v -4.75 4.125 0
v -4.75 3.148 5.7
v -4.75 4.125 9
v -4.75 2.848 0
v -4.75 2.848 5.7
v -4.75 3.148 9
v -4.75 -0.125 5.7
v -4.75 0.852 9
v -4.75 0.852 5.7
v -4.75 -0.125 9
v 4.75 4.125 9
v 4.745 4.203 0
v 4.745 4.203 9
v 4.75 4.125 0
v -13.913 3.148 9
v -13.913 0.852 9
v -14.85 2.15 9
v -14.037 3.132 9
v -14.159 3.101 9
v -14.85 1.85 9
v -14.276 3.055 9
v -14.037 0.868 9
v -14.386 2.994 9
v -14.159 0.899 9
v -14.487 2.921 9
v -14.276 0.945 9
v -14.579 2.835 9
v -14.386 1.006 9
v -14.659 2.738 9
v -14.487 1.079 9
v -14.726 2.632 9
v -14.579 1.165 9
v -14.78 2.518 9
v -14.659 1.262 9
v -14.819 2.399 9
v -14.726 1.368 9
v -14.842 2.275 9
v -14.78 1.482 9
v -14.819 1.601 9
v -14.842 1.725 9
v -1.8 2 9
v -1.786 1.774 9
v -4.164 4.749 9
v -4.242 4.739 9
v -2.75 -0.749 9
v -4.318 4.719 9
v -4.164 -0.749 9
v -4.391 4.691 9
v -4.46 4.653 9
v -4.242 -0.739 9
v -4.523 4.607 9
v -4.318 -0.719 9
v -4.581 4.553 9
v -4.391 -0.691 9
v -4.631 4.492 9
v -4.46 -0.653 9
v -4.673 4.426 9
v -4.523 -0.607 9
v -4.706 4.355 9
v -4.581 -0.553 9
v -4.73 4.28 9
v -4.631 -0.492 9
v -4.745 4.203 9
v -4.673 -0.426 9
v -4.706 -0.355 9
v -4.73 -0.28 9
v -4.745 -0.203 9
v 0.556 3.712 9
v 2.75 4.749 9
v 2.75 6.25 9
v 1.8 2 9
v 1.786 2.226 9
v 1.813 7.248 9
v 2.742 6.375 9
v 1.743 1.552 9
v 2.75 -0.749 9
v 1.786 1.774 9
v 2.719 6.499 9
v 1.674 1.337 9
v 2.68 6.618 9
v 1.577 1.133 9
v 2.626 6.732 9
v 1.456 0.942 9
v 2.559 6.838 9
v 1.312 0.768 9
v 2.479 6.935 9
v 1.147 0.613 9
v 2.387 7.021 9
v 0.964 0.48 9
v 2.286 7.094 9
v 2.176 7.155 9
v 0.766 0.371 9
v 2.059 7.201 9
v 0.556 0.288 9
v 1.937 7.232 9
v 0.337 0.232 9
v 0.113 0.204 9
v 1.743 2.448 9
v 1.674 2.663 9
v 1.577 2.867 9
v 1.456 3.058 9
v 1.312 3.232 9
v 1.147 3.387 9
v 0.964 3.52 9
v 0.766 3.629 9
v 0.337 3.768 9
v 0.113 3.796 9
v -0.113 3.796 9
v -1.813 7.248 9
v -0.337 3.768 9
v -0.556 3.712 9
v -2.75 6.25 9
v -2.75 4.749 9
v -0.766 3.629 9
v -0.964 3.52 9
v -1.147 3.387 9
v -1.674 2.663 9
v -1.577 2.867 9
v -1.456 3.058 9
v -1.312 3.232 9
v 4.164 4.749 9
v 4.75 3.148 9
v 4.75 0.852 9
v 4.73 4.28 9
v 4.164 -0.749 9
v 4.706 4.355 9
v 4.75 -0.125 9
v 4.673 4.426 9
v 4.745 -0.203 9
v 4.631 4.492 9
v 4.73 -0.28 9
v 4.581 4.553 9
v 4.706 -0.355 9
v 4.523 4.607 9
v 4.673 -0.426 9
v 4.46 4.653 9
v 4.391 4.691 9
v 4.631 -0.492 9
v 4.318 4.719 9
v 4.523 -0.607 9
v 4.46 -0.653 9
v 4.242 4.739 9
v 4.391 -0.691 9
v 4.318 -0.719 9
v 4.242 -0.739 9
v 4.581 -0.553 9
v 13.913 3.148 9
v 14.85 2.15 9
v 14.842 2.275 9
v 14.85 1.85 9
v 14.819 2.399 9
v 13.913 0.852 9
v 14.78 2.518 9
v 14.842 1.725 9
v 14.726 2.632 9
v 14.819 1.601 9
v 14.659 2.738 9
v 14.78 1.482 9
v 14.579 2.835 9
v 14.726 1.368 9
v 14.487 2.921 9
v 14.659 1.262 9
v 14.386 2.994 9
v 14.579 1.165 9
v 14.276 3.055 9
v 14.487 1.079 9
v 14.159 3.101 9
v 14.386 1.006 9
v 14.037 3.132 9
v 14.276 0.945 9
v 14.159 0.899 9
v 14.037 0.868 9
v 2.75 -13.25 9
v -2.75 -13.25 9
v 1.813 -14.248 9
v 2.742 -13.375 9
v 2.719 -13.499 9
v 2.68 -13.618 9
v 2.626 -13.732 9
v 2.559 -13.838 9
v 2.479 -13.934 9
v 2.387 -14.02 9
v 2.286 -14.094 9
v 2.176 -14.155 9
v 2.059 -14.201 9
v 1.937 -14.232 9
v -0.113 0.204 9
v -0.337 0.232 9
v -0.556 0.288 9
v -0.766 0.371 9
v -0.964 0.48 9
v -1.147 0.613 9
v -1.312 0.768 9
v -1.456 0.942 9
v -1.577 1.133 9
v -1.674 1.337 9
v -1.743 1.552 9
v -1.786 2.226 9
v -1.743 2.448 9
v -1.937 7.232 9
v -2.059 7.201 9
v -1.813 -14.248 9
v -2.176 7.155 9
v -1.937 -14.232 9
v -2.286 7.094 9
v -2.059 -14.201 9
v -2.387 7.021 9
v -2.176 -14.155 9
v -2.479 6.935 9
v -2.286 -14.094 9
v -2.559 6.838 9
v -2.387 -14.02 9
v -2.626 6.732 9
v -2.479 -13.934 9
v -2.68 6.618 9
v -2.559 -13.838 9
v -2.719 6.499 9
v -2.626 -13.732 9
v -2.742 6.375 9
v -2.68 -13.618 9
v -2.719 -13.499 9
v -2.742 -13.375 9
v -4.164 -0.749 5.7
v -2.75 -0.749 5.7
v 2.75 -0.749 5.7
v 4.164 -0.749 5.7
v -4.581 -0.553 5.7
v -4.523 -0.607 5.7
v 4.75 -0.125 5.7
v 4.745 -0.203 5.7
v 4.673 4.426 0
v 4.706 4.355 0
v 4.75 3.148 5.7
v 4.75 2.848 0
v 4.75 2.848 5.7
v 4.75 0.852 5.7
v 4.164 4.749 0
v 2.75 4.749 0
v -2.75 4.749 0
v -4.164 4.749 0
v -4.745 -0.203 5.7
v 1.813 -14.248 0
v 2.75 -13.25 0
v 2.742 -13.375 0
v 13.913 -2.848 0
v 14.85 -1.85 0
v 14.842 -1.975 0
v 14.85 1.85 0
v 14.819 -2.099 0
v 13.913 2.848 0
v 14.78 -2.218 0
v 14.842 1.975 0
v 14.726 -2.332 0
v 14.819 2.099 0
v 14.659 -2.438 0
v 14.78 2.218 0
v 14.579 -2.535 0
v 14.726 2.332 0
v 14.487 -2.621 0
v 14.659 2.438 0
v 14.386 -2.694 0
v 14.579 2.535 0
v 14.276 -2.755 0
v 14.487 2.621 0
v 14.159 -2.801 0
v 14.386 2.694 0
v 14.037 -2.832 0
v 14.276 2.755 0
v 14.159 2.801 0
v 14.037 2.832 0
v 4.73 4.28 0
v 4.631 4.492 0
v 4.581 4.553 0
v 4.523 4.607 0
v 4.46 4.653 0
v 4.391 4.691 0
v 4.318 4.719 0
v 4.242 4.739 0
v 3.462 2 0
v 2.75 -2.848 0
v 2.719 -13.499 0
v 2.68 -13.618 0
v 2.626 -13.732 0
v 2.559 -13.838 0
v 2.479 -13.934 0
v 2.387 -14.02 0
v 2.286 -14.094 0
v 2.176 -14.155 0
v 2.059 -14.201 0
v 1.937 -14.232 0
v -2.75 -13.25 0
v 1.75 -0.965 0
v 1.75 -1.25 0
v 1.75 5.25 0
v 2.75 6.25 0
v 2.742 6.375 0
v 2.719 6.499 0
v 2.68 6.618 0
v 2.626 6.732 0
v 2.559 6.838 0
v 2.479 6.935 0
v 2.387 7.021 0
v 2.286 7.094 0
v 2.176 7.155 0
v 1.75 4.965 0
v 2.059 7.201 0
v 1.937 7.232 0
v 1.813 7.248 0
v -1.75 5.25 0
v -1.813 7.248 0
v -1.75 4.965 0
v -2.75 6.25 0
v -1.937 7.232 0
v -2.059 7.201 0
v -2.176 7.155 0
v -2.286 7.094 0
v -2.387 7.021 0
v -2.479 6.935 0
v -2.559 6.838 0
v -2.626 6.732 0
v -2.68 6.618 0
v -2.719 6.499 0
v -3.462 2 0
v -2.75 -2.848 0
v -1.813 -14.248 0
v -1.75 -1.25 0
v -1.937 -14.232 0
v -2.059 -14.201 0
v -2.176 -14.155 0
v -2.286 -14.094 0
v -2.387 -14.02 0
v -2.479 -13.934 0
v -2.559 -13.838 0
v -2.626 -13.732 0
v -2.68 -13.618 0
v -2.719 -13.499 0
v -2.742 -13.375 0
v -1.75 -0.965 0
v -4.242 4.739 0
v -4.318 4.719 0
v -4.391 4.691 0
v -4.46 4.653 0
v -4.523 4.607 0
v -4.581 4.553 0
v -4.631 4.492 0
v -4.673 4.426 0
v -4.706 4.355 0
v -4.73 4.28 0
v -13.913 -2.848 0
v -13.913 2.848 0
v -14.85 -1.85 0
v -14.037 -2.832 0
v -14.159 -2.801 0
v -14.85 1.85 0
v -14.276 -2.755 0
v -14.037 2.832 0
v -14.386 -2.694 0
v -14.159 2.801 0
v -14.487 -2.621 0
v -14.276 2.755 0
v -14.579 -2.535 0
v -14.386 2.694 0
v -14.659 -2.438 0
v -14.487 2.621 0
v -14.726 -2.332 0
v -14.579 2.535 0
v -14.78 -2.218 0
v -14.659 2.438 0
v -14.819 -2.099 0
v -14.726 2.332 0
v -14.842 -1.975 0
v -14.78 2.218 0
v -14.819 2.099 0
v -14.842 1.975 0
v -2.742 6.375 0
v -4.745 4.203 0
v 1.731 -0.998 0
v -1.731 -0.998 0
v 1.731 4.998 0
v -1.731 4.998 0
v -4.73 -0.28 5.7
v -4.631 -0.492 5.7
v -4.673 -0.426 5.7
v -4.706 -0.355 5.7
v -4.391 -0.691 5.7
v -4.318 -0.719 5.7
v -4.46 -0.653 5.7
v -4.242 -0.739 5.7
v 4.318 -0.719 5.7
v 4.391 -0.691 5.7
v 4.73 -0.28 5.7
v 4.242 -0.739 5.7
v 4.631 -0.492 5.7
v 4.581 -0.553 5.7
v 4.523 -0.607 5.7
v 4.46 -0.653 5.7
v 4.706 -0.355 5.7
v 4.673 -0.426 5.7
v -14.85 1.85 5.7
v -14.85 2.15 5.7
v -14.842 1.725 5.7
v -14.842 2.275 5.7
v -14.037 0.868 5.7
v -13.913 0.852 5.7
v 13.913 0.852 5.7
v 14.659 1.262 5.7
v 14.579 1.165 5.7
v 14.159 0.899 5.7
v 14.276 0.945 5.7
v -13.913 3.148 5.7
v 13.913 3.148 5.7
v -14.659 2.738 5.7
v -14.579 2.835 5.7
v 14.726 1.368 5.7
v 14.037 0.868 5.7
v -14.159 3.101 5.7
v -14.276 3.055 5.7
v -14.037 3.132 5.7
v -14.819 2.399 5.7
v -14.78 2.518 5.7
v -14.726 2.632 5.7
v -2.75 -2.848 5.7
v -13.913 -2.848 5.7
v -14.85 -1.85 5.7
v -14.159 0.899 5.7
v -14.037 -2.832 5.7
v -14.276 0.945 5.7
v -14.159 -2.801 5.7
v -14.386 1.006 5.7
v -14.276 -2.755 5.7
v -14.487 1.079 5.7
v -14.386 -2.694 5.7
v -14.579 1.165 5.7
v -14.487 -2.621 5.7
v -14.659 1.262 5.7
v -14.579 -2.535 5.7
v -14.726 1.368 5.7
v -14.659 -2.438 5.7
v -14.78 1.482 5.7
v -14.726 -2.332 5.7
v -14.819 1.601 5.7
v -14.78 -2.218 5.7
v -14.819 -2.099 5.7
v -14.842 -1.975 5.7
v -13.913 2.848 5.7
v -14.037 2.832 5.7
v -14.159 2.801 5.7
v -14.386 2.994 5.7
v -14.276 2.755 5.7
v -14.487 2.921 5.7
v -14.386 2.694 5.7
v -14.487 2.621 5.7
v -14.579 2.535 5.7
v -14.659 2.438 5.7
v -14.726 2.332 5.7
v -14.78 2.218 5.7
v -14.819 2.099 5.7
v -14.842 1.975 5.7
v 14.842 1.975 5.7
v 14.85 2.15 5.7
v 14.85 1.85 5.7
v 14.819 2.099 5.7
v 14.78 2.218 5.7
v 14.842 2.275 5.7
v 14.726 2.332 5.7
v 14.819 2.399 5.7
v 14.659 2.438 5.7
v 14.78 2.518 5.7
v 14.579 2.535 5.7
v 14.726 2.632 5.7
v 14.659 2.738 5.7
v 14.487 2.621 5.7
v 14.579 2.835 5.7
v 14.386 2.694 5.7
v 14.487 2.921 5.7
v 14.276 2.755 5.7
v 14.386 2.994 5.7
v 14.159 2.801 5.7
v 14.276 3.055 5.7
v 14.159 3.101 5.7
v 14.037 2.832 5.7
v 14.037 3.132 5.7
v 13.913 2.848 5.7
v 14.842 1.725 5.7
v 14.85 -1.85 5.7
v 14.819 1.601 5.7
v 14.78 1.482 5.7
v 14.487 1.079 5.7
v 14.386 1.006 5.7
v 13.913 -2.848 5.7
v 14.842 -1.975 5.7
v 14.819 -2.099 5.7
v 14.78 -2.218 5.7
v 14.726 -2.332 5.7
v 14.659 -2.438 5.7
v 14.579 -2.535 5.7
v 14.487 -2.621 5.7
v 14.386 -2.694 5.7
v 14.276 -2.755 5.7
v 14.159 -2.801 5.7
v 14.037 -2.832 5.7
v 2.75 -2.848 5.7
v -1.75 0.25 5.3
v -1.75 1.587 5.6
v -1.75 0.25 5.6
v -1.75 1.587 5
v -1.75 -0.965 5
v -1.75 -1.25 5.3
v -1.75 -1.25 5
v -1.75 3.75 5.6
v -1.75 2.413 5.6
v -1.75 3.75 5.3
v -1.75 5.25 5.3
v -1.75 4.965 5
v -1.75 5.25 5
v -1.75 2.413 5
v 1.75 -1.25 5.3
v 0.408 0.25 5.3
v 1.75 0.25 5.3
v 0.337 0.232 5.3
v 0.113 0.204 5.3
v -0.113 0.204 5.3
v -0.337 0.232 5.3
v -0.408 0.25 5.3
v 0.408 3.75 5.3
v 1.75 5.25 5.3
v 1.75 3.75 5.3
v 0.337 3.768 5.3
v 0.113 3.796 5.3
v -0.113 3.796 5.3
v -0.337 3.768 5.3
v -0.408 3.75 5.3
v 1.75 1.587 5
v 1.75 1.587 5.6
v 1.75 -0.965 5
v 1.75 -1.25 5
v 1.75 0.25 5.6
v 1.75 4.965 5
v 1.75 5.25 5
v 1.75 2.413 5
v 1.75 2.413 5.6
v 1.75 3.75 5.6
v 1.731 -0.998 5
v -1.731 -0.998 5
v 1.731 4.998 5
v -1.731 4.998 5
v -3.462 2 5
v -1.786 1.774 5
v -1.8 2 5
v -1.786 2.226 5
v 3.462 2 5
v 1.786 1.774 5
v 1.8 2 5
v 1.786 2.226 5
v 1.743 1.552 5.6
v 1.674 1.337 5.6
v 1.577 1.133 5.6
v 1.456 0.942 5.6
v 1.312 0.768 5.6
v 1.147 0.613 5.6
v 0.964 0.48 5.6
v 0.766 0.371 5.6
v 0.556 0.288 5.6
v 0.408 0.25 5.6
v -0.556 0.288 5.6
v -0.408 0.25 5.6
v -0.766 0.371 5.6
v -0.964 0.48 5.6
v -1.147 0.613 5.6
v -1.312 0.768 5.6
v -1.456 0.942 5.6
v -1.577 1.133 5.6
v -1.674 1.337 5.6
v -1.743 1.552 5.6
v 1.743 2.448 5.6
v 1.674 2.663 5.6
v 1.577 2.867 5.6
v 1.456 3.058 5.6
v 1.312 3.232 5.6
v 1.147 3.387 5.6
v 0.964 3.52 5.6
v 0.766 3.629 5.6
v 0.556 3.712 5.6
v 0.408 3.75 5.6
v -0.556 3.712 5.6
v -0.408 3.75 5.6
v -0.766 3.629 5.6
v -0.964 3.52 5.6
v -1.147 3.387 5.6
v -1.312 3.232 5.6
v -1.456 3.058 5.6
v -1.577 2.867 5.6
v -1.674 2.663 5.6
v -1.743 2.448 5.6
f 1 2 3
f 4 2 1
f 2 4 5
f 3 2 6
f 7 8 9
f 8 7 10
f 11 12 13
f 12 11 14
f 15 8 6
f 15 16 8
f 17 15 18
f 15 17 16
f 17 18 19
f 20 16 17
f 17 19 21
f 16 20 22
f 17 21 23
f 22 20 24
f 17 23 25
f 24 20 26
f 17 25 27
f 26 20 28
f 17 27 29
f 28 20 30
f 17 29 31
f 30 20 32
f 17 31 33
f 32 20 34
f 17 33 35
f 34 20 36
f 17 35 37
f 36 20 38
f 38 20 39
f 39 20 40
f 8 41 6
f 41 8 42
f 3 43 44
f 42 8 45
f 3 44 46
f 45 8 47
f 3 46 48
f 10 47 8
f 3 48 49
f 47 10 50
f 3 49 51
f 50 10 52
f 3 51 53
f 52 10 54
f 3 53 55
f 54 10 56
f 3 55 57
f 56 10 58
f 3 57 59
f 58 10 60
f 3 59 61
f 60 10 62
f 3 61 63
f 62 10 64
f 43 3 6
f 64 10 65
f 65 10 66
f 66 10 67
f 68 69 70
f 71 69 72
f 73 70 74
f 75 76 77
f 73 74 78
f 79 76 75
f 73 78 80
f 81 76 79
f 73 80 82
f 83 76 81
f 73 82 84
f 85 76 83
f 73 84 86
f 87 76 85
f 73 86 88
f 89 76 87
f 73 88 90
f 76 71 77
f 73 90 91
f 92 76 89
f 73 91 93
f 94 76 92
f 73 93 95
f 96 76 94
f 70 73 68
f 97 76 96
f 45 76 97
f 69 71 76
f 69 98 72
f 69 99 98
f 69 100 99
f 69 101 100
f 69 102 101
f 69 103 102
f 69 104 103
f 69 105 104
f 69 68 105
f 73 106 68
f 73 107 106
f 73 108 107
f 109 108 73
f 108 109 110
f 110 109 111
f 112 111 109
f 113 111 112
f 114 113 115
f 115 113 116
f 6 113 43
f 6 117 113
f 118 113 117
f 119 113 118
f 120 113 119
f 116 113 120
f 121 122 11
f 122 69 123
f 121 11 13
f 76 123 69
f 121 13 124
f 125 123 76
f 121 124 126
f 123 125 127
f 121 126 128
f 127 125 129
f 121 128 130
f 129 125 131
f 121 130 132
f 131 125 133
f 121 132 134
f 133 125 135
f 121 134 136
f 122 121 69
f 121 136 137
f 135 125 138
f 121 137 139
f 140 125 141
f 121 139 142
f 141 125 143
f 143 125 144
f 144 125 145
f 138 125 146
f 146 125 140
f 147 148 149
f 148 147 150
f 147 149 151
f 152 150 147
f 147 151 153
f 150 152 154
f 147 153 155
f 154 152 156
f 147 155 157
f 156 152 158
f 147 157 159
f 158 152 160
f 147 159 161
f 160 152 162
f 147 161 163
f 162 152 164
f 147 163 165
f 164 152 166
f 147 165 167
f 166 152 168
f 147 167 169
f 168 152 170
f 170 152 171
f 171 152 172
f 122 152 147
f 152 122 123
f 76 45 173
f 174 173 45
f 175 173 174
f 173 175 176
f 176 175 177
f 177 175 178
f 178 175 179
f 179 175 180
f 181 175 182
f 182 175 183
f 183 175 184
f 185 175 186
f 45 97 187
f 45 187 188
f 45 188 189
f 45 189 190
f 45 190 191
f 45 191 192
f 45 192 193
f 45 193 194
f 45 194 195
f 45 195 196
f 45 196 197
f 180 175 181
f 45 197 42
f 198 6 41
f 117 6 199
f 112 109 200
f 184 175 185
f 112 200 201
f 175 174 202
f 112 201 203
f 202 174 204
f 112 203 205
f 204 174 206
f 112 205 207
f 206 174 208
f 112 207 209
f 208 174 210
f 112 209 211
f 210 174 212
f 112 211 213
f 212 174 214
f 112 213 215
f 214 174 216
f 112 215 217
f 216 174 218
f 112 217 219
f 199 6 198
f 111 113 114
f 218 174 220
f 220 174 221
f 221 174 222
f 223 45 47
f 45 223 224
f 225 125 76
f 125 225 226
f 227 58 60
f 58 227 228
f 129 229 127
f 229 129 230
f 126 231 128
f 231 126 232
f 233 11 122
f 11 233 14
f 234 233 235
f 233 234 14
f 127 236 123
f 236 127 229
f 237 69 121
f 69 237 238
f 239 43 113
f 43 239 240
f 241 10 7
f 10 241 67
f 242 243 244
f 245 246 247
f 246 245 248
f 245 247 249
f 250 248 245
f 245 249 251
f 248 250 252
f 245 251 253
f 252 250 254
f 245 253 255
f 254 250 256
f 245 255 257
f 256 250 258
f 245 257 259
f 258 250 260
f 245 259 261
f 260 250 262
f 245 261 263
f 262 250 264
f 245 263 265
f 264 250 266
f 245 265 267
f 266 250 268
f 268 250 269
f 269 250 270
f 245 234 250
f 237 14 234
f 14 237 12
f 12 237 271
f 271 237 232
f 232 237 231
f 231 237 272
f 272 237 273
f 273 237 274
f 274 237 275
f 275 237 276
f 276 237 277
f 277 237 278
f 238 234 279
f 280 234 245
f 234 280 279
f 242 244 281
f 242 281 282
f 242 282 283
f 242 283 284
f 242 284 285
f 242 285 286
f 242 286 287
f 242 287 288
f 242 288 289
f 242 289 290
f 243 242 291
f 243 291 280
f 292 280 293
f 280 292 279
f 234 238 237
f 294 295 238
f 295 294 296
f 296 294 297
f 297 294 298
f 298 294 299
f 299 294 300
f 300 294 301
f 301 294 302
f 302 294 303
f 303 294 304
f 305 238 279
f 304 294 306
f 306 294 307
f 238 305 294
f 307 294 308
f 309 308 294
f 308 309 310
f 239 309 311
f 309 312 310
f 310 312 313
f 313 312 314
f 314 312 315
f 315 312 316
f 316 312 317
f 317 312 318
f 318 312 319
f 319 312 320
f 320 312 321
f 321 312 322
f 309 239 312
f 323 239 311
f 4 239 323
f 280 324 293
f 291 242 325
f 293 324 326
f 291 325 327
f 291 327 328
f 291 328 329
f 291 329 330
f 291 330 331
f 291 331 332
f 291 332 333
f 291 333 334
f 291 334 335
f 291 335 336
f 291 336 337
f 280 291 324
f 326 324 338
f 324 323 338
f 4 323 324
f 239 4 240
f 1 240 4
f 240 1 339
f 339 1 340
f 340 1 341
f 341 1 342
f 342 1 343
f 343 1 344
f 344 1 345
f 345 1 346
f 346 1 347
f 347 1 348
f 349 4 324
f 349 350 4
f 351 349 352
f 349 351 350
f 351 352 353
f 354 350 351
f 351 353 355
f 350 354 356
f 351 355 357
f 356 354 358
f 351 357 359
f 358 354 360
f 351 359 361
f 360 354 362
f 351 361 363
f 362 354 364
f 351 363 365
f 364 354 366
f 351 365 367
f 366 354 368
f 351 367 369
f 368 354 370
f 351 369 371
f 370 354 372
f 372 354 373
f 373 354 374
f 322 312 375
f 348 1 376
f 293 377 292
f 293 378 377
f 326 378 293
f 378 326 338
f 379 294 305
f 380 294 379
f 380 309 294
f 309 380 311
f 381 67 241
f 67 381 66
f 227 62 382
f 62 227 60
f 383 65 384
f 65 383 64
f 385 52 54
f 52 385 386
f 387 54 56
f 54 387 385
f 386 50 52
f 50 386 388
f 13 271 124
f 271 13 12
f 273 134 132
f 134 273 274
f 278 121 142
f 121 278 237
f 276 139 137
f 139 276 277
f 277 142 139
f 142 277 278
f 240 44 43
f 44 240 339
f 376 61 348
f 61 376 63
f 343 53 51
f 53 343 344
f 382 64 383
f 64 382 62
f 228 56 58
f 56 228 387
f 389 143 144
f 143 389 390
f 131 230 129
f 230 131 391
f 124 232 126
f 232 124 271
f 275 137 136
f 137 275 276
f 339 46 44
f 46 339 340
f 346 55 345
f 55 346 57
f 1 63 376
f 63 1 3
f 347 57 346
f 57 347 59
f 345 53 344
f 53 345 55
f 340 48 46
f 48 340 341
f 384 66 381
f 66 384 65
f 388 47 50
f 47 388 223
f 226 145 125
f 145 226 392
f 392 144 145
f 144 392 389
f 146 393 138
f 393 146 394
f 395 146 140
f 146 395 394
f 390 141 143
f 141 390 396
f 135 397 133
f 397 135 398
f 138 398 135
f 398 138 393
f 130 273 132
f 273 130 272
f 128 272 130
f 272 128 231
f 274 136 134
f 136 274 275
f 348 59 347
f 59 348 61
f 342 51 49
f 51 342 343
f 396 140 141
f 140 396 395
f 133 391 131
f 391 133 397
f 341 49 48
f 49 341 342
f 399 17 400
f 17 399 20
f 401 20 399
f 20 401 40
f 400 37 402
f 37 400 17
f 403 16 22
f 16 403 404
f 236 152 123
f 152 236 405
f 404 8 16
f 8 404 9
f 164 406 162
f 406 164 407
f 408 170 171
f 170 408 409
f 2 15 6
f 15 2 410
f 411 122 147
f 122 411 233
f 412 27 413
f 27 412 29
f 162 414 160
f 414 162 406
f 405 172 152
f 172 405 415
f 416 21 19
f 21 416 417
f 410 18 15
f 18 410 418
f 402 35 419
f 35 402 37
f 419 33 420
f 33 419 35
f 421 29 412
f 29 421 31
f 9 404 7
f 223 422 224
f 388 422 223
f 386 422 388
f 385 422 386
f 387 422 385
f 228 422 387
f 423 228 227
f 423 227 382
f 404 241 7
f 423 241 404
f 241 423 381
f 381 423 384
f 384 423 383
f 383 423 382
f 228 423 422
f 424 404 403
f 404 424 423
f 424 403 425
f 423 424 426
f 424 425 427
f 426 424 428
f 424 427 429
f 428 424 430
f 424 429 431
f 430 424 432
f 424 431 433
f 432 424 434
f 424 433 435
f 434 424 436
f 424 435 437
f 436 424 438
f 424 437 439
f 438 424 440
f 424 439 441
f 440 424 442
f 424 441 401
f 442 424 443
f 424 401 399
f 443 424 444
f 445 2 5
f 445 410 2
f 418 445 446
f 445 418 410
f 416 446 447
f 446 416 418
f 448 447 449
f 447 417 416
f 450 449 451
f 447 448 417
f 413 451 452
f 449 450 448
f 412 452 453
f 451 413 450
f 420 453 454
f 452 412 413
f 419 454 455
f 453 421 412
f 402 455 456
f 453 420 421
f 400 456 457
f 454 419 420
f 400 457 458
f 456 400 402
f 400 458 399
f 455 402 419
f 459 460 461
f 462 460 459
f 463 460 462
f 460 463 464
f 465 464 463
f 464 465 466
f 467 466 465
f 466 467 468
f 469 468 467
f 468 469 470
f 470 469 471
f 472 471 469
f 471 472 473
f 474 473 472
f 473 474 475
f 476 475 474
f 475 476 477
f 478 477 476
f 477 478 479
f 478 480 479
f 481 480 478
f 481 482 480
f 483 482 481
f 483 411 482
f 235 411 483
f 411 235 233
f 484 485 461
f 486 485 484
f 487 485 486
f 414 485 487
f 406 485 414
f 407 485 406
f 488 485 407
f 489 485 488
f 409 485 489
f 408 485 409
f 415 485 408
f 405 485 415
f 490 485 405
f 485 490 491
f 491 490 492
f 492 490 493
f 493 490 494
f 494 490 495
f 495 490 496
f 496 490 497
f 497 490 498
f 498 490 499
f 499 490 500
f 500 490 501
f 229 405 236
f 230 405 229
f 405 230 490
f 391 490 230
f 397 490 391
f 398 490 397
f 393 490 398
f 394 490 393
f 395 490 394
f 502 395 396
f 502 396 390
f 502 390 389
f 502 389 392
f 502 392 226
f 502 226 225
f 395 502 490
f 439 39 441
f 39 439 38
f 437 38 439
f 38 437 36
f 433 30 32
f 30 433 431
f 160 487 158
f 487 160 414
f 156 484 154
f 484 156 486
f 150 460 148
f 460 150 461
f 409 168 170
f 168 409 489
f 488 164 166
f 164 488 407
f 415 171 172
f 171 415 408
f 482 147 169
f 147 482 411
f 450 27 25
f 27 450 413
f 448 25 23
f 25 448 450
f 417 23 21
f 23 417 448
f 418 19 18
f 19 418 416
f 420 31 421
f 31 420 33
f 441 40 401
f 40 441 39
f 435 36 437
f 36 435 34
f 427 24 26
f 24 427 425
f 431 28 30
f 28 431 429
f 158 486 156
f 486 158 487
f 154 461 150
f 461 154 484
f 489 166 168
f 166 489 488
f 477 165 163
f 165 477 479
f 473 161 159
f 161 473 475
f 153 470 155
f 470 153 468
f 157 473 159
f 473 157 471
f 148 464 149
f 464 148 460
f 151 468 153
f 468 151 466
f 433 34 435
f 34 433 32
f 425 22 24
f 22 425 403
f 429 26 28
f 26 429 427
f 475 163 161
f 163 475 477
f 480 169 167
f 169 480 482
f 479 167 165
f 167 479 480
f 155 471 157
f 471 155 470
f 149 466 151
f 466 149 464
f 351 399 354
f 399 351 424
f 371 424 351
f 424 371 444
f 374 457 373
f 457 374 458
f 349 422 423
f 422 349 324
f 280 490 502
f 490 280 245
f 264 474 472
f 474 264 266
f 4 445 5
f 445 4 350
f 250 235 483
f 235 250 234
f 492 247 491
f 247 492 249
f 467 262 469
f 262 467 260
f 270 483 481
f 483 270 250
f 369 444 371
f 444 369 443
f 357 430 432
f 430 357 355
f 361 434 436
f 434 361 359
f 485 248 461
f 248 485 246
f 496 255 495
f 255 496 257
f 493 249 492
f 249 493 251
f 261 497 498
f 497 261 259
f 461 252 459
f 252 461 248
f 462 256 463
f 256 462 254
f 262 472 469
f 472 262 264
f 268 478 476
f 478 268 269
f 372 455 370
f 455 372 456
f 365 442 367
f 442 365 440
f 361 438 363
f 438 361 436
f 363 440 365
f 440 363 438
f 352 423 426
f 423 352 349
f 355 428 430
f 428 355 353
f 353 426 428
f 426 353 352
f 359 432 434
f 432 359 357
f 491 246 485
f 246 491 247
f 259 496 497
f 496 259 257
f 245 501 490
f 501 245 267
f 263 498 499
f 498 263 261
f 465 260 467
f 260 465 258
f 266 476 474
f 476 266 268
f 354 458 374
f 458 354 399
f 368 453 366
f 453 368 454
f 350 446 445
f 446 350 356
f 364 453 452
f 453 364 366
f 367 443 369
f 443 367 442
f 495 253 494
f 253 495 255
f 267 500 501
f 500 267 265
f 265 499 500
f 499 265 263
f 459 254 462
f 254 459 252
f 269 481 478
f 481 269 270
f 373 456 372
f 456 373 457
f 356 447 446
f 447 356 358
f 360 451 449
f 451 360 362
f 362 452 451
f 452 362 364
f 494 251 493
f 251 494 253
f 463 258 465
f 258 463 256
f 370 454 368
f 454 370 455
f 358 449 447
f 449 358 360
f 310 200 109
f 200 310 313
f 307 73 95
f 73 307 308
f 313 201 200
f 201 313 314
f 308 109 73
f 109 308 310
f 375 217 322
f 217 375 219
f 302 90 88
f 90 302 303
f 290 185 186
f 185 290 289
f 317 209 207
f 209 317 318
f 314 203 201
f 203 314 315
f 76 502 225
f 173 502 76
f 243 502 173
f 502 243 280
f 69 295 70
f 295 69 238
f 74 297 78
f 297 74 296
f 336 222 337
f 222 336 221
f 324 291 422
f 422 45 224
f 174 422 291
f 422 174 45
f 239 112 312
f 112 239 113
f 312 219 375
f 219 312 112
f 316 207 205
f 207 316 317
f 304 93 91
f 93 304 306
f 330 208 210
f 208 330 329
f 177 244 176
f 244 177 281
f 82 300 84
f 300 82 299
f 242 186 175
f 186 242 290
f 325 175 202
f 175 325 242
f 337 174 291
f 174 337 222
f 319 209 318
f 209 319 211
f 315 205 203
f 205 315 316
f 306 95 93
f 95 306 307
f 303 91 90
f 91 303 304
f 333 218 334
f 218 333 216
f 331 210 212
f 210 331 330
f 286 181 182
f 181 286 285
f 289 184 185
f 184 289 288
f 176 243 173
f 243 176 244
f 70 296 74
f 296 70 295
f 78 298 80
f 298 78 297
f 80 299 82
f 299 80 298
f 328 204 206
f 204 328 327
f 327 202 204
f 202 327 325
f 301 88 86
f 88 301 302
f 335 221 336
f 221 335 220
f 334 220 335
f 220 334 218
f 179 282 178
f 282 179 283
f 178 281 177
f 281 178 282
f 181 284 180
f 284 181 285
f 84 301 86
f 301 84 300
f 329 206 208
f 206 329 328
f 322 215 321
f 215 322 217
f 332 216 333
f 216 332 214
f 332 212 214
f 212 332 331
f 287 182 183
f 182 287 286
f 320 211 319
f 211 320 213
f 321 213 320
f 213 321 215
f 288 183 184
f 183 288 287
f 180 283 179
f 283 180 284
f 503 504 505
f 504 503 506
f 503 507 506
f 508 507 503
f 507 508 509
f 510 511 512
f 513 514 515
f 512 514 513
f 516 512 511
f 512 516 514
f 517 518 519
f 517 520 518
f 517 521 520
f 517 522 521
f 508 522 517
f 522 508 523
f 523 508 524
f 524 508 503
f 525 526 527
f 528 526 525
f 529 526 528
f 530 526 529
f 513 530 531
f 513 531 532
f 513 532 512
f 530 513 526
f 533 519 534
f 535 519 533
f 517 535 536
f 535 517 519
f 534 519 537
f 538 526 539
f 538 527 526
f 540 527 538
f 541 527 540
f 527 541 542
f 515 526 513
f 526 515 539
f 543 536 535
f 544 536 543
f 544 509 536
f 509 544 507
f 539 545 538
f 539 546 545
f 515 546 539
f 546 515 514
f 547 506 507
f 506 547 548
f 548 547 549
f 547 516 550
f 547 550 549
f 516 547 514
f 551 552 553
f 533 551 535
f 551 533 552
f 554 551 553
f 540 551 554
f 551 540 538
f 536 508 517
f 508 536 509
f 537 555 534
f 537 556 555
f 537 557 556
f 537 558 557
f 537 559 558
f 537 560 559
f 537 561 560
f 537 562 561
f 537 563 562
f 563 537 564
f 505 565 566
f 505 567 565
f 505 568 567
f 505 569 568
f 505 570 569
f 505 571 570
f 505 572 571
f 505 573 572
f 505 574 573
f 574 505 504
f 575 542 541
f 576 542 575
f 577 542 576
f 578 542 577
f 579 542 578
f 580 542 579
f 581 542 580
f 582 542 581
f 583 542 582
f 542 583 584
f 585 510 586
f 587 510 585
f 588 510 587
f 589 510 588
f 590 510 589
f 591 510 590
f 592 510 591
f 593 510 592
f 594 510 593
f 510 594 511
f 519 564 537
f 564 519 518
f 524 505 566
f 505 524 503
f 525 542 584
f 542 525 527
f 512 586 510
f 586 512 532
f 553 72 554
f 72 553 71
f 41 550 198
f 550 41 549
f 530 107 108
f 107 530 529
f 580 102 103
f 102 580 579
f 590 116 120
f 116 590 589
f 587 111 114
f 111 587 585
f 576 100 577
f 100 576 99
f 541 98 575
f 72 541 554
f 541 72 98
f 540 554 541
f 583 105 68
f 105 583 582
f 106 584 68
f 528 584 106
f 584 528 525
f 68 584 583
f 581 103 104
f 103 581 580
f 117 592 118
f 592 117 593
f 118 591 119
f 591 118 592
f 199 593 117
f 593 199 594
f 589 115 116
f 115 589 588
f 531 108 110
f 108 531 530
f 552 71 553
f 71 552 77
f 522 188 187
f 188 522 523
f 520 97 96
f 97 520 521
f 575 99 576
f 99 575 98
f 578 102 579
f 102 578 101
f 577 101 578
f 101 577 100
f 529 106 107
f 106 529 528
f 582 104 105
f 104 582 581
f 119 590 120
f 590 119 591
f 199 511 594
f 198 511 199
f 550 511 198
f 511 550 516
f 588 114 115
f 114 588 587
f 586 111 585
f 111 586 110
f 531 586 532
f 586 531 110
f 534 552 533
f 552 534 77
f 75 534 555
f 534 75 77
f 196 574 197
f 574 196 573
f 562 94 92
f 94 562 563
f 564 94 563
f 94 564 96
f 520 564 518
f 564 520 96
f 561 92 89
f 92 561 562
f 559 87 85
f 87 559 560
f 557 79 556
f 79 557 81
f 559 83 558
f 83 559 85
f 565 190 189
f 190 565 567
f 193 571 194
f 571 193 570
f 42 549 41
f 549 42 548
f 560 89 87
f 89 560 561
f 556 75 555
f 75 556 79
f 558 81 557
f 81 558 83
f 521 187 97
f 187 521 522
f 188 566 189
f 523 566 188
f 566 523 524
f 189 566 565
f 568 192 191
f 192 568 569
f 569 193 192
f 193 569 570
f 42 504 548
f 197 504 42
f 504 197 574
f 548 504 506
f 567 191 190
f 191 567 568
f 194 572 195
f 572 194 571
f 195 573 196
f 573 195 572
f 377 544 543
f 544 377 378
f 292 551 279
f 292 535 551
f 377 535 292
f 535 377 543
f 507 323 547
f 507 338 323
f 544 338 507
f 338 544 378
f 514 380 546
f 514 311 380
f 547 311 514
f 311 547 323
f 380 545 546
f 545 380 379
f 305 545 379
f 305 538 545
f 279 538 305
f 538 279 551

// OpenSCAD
$fn = 50;


difference() {
	union() {
		translate(v = [0, 2.0000000000, 0]) {
			hull() {
				translate(v = [-4.1250000000, 2.1250000000, 0]) {
					cylinder(h = 9, r = 0.6250000000);
				}
				translate(v = [4.1250000000, 2.1250000000, 0]) {
					cylinder(h = 9, r = 0.6250000000);
				}
				translate(v = [-4.1250000000, -2.1250000000, 0]) {
					cylinder(h = 9, r = 0.6250000000);
				}
				translate(v = [4.1250000000, -2.1250000000, 0]) {
					cylinder(h = 9, r = 0.6250000000);
				}
			}
		}
		translate(v = [0, 2.0000000000, 5.7000000000]) {
			hull() {
				translate(v = [-13.8500000000, -0.1500000000, 0]) {
					cylinder(h = 3.3000000000, r = 1);
				}
				translate(v = [13.8500000000, -0.1500000000, 0]) {
					cylinder(h = 3.3000000000, r = 1);
				}
				translate(v = [-13.8500000000, 0.1500000000, 0]) {
					cylinder(h = 3.3000000000, r = 1);
				}
				translate(v = [13.8500000000, 0.1500000000, 0]) {
					cylinder(h = 3.3000000000, r = 1);
				}
			}
		}
		hull() {
			translate(v = [-13.8500000000, 1.8500000000, 0]) {
				cylinder(h = 5.7000000000, r = 1);
			}
			translate(v = [13.8500000000, 1.8500000000, 0]) {
				cylinder(h = 5.7000000000, r = 1);
			}
			translate(v = [-13.8500000000, -1.8500000000, 0]) {
				cylinder(h = 5.7000000000, r = 1);
			}
			translate(v = [13.8500000000, -1.8500000000, 0]) {
				cylinder(h = 5.7000000000, r = 1);
			}
		}
		translate(v = [0, -3.5000000000, 6]) {
			hull() {
				translate(v = [-1.7500000000, 9.7500000000, 0]) {
					cylinder(h = 3, r = 1);
				}
				translate(v = [1.7500000000, 9.7500000000, 0]) {
					cylinder(h = 3, r = 1);
				}
				translate(v = [-1.7500000000, -9.7500000000, 0]) {
					cylinder(h = 3, r = 1);
				}
				translate(v = [1.7500000000, -9.7500000000, 0]) {
					cylinder(h = 3, r = 1);
				}
			}
		}
		translate(v = [0, -3.5000000000, 0]) {
			hull() {
				translate(v = [-1.7500000000, 9.7500000000, 0]) {
					cylinder(h = 6, r = 1);
				}
				translate(v = [1.7500000000, 9.7500000000, 0]) {
					cylinder(h = 6, r = 1);
				}
				translate(v = [-1.7500000000, -9.7500000000, 0]) {
					cylinder(h = 6, r = 1);
				}
				translate(v = [1.7500000000, -9.7500000000, 0]) {
					cylinder(h = 6, r = 1);
				}
			}
		}
	}
	union() {
		translate(v = [0, 2.0000000000, 0]) {
			rotate(a = [0, 0, 0]) {
				difference() {
					union() {
						#translate(v = [-1.7500000000, -3.2500000000, -0.3000000000]) {
							cube(size = [3.5000000000, 6.5000000000, 0.3000000000]);
						}
						#translate(v = [-1.7500000000, -1.7500000000, -0.6000000000]) {
							cube(size = [3.5000000000, 3.5000000000, 0.3000000000]);
						}
						#translate(v = [-1.7500000000, -3.2500000000, 5]) {
							cube(size = [3.5000000000, 6.5000000000, 0.3000000000]);
						}
						#translate(v = [-1.7500000000, -1.7500000000, 5.3000000000]) {
							cube(size = [3.5000000000, 3.5000000000, 0.3000000000]);
						}
						#translate(v = [0, 0, -100.0000000000]) {
							cylinder(h = 200, r = 1.8000000000);
						}
						#linear_extrude(height = 5) {
							polygon(points = [[3.4620000000, 0.0000000000], [1.7310000000, 2.9981799479], [-1.7310000000, 2.9981799479], [-3.4620000000, 0.0000000000], [-1.7310000000, -2.9981799479], [1.7310000000, -2.9981799479]]);
						}
						#translate(v = [-1.7500000000, -3.2500000000, -0.3000000000]) {
							cube(size = [3.5000000000, 6.5000000000, 0.3000000000]);
						}
						#translate(v = [-1.7500000000, -1.7500000000, -0.6000000000]) {
							cube(size = [3.5000000000, 3.5000000000, 0.3000000000]);
						}
						#translate(v = [-1.7500000000, -3.2500000000, 5]) {
							cube(size = [3.5000000000, 6.5000000000, 0.3000000000]);
						}
						#translate(v = [-1.7500000000, -1.7500000000, 5.3000000000]) {
							cube(size = [3.5000000000, 3.5000000000, 0.3000000000]);
						}
						#translate(v = [0, 0, -100.0000000000]) {
							cylinder(h = 200, r = 1.8000000000);
						}
						#translate(v = [-1.7500000000, -3.2500000000, -0.3000000000]) {
							cube(size = [3.5000000000, 6.5000000000, 0.3000000000]);
						}
						#translate(v = [-1.7500000000, -1.7500000000, -0.6000000000]) {
							cube(size = [3.5000000000, 3.5000000000, 0.3000000000]);
						}
						#translate(v = [-1.7500000000, -3.2500000000, 5]) {
							cube(size = [3.5000000000, 6.5000000000, 0.3000000000]);
						}
						#translate(v = [-1.7500000000, -1.7500000000, 5.3000000000]) {
							cube(size = [3.5000000000, 3.5000000000, 0.3000000000]);
						}
						#translate(v = [0, 0, -100.0000000000]) {
							cylinder(h = 200, r = 1.8000000000);
						}
					}
					union();
				}
			}
		}
	}
}
